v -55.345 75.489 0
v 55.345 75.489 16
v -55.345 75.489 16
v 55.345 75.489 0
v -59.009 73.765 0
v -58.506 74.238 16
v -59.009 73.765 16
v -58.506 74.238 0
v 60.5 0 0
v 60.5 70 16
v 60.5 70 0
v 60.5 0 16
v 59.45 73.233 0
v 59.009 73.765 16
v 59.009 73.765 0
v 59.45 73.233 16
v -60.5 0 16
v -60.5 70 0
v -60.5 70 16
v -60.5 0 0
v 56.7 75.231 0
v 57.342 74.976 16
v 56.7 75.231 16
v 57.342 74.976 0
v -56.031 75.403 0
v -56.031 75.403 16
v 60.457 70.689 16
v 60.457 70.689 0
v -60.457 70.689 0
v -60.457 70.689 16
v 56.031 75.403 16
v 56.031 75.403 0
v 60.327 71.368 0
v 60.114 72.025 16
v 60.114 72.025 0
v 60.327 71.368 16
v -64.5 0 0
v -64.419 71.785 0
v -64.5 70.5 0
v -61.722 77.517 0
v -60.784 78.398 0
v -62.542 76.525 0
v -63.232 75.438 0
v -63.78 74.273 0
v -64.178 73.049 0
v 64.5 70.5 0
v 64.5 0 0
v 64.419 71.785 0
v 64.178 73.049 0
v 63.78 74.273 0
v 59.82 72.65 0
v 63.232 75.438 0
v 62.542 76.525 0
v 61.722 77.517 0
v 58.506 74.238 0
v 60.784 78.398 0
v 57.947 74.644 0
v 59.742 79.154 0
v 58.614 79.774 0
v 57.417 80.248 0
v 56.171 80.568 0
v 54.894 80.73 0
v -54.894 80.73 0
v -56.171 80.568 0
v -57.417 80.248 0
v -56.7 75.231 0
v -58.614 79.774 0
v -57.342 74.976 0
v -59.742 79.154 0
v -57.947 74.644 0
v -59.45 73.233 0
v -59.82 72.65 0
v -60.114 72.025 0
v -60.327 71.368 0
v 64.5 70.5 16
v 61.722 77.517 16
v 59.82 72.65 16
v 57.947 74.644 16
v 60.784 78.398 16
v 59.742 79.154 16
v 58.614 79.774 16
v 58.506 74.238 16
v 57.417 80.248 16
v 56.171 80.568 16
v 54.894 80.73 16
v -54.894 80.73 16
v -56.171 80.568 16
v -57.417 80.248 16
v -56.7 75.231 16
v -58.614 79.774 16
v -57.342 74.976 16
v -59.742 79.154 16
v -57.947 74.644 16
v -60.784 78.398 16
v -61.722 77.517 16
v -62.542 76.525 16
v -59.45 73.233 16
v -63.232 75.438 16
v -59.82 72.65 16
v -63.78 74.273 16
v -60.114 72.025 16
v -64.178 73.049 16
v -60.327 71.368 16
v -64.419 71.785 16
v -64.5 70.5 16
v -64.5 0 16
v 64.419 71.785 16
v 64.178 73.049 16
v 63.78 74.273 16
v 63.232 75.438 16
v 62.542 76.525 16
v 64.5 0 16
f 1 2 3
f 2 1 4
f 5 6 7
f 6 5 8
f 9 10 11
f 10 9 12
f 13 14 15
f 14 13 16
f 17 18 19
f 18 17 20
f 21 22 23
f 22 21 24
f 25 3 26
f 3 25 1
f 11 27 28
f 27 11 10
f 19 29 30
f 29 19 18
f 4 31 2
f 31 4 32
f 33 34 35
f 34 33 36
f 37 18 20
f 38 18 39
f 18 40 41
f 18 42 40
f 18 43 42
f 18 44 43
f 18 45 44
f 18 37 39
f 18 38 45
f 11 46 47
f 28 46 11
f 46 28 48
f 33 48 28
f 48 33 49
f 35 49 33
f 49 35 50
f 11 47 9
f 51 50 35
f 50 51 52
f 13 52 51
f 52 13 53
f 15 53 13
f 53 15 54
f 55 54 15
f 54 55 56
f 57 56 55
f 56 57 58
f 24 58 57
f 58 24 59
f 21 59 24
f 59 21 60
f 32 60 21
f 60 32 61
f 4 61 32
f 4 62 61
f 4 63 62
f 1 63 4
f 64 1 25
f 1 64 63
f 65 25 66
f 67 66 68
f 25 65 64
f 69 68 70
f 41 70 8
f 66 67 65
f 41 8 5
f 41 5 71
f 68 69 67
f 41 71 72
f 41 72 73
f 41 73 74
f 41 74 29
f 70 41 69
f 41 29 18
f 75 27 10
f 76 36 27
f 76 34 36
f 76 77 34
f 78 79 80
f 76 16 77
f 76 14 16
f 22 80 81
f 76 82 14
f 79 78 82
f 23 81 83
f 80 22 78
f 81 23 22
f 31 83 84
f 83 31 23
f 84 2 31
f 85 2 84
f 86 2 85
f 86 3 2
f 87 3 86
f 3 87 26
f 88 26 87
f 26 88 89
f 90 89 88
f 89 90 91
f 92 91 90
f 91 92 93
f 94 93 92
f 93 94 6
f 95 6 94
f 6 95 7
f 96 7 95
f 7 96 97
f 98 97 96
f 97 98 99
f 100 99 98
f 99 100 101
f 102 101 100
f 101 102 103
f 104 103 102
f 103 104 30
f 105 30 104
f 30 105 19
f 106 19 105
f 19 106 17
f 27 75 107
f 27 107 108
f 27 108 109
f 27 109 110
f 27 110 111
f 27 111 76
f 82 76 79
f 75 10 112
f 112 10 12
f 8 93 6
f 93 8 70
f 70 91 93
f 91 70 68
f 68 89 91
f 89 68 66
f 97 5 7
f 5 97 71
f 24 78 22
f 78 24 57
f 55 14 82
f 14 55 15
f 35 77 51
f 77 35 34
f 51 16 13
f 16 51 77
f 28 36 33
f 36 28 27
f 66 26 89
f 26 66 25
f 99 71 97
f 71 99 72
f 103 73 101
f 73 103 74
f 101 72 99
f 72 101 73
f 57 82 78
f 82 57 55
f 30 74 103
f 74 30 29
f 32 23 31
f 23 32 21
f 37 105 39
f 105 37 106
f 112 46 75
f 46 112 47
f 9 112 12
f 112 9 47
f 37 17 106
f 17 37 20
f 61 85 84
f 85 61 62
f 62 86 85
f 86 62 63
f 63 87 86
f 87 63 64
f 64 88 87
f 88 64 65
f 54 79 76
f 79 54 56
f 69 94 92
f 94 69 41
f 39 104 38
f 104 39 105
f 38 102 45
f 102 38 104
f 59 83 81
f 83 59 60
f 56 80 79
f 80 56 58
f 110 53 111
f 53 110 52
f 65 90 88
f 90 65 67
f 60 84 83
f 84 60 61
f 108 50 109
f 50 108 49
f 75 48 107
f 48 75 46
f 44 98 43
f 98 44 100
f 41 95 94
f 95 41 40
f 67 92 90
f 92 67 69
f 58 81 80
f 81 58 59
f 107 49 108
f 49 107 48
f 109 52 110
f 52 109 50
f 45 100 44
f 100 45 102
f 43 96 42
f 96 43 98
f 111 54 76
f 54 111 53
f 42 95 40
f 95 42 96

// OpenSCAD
$fn = 50;


difference() {
	union() {
		hull() {
			translate(v = [-54.2500000000, 70.5000000000, 0]) {
				cylinder(h = 16.0000000000, r = 10.2500000000);
			}
			translate(v = [54.2500000000, 70.5000000000, 0]) {
				cylinder(h = 16.0000000000, r = 10.2500000000);
			}
			translate(v = [-54.2500000000, -70.5000000000, 0]) {
				cylinder(h = 16.0000000000, r = 10.2500000000);
			}
			translate(v = [54.2500000000, -70.5000000000, 0]) {
				cylinder(h = 16.0000000000, r = 10.2500000000);
			}
		}
	}
	union() {
		hull() {
			translate(v = [-55.0000000000, 70.0000000000, 0]) {
				cylinder(h = 16.0000000000, r = 5.5000000000);
			}
			translate(v = [55.0000000000, 70.0000000000, 0]) {
				cylinder(h = 16.0000000000, r = 5.5000000000);
			}
			translate(v = [-55.0000000000, -70.0000000000, 0]) {
				cylinder(h = 16.0000000000, r = 5.5000000000);
			}
			translate(v = [55.0000000000, -70.0000000000, 0]) {
				cylinder(h = 16.0000000000, r = 5.5000000000);
			}
		}
		#translate(v = [-64.5000000000, -161.5000000000, 0]) {
			cube(size = [129.0000000000, 161.5000000000, 16.0000000000]);
		}
	}
}
